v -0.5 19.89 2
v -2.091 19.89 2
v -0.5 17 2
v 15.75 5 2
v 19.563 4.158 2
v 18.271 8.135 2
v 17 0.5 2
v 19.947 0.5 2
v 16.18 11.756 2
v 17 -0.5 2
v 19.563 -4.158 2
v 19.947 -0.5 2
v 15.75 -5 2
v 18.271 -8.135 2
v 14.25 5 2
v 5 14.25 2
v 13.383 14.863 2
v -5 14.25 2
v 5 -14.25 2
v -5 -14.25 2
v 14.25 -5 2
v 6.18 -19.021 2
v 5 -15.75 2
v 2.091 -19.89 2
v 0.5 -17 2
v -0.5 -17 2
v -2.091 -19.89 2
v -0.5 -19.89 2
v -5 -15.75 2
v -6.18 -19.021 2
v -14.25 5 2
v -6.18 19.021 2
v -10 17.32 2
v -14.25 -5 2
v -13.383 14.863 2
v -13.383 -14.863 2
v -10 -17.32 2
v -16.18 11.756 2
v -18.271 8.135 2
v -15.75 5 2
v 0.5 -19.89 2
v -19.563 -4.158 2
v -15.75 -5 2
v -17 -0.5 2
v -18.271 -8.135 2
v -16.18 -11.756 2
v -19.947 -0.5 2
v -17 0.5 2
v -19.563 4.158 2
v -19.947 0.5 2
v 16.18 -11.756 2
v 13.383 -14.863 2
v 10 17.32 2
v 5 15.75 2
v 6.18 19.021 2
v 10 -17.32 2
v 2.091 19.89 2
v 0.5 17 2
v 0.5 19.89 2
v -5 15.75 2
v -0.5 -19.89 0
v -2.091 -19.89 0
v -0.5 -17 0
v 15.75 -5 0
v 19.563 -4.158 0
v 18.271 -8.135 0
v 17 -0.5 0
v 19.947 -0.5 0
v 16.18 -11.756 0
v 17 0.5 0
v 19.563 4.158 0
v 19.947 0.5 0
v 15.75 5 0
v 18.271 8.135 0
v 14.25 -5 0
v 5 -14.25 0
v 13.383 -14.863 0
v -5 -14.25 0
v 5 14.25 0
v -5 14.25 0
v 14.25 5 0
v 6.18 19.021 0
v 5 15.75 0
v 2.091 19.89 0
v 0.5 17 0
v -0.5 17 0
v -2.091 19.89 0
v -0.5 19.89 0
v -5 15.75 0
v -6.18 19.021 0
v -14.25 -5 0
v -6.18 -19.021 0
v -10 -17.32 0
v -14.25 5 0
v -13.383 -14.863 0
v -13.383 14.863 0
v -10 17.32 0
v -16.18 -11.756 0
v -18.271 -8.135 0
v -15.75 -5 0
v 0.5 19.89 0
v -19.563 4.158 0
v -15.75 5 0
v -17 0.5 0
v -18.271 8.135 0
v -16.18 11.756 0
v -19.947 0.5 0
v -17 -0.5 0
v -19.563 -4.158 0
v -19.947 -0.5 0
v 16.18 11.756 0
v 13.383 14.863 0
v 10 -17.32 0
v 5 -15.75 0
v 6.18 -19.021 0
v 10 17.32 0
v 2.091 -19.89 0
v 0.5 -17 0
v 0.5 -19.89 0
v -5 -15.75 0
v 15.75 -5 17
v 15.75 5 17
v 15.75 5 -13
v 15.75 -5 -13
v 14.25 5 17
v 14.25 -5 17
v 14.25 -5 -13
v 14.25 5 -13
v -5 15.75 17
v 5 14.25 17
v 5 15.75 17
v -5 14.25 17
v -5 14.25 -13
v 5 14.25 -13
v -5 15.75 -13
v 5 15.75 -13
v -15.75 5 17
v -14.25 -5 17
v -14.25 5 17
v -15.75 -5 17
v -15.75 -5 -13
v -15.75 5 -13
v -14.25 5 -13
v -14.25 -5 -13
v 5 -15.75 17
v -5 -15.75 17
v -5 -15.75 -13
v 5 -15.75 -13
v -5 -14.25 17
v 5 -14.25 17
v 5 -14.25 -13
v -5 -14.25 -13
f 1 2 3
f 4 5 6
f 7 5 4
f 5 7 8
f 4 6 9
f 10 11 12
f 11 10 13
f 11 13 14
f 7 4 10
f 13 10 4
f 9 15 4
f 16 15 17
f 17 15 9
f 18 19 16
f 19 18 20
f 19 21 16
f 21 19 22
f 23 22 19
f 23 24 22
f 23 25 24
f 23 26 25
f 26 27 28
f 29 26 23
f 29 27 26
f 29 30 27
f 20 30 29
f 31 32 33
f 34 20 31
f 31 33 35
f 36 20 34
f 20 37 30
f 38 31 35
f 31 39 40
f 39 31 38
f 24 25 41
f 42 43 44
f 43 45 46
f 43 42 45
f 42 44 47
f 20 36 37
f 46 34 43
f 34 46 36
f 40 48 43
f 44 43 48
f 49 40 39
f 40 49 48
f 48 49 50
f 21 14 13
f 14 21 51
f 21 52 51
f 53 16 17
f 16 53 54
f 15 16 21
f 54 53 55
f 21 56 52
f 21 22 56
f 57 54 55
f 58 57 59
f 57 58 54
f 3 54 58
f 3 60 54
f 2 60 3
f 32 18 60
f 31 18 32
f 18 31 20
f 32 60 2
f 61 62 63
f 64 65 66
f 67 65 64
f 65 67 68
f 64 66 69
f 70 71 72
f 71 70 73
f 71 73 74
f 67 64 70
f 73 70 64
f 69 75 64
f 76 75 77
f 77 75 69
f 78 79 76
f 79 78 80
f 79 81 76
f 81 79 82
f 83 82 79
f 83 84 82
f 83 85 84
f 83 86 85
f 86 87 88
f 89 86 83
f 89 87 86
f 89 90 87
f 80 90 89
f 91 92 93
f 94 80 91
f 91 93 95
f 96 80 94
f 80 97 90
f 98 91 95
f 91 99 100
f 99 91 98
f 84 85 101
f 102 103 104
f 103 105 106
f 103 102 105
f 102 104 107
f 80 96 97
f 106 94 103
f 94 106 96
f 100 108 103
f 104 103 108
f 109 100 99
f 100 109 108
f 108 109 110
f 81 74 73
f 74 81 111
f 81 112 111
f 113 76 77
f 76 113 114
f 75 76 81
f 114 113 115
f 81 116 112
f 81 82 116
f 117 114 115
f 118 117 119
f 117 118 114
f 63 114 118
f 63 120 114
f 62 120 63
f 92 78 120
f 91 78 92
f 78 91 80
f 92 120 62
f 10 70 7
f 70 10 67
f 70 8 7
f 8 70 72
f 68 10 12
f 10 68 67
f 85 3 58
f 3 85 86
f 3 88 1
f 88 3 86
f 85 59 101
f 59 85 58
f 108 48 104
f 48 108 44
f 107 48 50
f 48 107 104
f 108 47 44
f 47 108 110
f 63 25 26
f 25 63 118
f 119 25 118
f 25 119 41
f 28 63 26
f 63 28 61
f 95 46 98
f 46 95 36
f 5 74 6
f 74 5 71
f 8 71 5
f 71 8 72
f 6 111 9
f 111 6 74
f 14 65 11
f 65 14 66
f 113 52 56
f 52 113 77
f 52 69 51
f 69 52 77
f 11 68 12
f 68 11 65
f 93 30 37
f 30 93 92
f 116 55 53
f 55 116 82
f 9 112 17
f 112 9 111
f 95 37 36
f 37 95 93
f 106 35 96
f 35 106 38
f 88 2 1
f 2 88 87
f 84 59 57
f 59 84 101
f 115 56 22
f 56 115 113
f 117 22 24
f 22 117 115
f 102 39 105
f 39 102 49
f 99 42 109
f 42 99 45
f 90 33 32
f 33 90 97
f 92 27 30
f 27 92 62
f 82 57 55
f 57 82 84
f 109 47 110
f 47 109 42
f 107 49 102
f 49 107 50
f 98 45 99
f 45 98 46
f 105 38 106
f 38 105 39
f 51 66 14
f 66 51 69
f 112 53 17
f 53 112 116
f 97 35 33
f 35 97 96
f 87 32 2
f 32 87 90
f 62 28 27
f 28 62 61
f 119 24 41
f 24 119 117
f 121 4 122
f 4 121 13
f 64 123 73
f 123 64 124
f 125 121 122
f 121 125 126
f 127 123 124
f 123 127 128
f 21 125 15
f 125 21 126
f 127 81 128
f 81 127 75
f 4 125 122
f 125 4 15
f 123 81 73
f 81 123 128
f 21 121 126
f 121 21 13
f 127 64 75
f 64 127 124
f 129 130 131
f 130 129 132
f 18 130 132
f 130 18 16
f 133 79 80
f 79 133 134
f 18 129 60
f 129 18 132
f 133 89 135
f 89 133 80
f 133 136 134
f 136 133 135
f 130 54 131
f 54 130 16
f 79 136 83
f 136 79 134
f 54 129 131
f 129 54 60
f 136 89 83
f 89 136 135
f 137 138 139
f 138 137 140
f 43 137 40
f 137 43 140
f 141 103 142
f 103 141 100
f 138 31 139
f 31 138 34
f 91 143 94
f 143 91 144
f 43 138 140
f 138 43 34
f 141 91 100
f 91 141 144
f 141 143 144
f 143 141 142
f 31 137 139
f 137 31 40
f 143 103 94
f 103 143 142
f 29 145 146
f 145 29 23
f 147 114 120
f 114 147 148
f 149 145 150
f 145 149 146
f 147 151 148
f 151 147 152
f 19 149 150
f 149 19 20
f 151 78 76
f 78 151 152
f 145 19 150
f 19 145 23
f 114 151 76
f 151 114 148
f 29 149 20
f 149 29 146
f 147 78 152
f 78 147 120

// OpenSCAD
// Parameters
base_disk_radius = 20; // Radius of the base disk
base_disk_thickness = 2; // Reduced thickness of the base disk to match the original model
prong_width = 1.5; // Reduced width of each vertical prong for a slender shape
prong_depth = 10; // Depth of each vertical prong remains unchanged
prong_height = 30; // Increased height of each vertical prong to match the original model
num_prongs = 4; // Number of prongs remains unchanged
prong_spacing_angle = 360 / num_prongs; // Angle between prongs remains unchanged
slot_width = 3; // Width of the slots on the base disk
slot_depth = 1; // Depth of the slots on the base disk

// Base disk module with slots
module base_disk() {
    difference() {
        cylinder(h = base_disk_thickness, r = base_disk_radius, center = false);
        for (i = [0 : num_prongs - 1]) {
            rotate([0, 0, i * prong_spacing_angle]) {
                translate([base_disk_radius - slot_width / 2, 0, base_disk_thickness / 2]) {
                    cube([slot_width, slot_depth, base_disk_thickness], center = true);
                }
            }
        }
    }
}

// Vertical prong module
module vertical_prong() {
    cube([prong_width, prong_depth, prong_height], center = true);
}

// Assembly
module flexible_coupling() {
    // Layer 2: Base disk
    base_disk();

    // Layer 1: Vertical prongs
    for (i = [0 : num_prongs - 1]) {
        rotate([0, 0, i * prong_spacing_angle]) {
            translate([base_disk_radius - prong_depth / 2, 0, base_disk_thickness]) {
                vertical_prong();
            }
        }
    }
}

// Render the flexible coupling
flexible_coupling();
